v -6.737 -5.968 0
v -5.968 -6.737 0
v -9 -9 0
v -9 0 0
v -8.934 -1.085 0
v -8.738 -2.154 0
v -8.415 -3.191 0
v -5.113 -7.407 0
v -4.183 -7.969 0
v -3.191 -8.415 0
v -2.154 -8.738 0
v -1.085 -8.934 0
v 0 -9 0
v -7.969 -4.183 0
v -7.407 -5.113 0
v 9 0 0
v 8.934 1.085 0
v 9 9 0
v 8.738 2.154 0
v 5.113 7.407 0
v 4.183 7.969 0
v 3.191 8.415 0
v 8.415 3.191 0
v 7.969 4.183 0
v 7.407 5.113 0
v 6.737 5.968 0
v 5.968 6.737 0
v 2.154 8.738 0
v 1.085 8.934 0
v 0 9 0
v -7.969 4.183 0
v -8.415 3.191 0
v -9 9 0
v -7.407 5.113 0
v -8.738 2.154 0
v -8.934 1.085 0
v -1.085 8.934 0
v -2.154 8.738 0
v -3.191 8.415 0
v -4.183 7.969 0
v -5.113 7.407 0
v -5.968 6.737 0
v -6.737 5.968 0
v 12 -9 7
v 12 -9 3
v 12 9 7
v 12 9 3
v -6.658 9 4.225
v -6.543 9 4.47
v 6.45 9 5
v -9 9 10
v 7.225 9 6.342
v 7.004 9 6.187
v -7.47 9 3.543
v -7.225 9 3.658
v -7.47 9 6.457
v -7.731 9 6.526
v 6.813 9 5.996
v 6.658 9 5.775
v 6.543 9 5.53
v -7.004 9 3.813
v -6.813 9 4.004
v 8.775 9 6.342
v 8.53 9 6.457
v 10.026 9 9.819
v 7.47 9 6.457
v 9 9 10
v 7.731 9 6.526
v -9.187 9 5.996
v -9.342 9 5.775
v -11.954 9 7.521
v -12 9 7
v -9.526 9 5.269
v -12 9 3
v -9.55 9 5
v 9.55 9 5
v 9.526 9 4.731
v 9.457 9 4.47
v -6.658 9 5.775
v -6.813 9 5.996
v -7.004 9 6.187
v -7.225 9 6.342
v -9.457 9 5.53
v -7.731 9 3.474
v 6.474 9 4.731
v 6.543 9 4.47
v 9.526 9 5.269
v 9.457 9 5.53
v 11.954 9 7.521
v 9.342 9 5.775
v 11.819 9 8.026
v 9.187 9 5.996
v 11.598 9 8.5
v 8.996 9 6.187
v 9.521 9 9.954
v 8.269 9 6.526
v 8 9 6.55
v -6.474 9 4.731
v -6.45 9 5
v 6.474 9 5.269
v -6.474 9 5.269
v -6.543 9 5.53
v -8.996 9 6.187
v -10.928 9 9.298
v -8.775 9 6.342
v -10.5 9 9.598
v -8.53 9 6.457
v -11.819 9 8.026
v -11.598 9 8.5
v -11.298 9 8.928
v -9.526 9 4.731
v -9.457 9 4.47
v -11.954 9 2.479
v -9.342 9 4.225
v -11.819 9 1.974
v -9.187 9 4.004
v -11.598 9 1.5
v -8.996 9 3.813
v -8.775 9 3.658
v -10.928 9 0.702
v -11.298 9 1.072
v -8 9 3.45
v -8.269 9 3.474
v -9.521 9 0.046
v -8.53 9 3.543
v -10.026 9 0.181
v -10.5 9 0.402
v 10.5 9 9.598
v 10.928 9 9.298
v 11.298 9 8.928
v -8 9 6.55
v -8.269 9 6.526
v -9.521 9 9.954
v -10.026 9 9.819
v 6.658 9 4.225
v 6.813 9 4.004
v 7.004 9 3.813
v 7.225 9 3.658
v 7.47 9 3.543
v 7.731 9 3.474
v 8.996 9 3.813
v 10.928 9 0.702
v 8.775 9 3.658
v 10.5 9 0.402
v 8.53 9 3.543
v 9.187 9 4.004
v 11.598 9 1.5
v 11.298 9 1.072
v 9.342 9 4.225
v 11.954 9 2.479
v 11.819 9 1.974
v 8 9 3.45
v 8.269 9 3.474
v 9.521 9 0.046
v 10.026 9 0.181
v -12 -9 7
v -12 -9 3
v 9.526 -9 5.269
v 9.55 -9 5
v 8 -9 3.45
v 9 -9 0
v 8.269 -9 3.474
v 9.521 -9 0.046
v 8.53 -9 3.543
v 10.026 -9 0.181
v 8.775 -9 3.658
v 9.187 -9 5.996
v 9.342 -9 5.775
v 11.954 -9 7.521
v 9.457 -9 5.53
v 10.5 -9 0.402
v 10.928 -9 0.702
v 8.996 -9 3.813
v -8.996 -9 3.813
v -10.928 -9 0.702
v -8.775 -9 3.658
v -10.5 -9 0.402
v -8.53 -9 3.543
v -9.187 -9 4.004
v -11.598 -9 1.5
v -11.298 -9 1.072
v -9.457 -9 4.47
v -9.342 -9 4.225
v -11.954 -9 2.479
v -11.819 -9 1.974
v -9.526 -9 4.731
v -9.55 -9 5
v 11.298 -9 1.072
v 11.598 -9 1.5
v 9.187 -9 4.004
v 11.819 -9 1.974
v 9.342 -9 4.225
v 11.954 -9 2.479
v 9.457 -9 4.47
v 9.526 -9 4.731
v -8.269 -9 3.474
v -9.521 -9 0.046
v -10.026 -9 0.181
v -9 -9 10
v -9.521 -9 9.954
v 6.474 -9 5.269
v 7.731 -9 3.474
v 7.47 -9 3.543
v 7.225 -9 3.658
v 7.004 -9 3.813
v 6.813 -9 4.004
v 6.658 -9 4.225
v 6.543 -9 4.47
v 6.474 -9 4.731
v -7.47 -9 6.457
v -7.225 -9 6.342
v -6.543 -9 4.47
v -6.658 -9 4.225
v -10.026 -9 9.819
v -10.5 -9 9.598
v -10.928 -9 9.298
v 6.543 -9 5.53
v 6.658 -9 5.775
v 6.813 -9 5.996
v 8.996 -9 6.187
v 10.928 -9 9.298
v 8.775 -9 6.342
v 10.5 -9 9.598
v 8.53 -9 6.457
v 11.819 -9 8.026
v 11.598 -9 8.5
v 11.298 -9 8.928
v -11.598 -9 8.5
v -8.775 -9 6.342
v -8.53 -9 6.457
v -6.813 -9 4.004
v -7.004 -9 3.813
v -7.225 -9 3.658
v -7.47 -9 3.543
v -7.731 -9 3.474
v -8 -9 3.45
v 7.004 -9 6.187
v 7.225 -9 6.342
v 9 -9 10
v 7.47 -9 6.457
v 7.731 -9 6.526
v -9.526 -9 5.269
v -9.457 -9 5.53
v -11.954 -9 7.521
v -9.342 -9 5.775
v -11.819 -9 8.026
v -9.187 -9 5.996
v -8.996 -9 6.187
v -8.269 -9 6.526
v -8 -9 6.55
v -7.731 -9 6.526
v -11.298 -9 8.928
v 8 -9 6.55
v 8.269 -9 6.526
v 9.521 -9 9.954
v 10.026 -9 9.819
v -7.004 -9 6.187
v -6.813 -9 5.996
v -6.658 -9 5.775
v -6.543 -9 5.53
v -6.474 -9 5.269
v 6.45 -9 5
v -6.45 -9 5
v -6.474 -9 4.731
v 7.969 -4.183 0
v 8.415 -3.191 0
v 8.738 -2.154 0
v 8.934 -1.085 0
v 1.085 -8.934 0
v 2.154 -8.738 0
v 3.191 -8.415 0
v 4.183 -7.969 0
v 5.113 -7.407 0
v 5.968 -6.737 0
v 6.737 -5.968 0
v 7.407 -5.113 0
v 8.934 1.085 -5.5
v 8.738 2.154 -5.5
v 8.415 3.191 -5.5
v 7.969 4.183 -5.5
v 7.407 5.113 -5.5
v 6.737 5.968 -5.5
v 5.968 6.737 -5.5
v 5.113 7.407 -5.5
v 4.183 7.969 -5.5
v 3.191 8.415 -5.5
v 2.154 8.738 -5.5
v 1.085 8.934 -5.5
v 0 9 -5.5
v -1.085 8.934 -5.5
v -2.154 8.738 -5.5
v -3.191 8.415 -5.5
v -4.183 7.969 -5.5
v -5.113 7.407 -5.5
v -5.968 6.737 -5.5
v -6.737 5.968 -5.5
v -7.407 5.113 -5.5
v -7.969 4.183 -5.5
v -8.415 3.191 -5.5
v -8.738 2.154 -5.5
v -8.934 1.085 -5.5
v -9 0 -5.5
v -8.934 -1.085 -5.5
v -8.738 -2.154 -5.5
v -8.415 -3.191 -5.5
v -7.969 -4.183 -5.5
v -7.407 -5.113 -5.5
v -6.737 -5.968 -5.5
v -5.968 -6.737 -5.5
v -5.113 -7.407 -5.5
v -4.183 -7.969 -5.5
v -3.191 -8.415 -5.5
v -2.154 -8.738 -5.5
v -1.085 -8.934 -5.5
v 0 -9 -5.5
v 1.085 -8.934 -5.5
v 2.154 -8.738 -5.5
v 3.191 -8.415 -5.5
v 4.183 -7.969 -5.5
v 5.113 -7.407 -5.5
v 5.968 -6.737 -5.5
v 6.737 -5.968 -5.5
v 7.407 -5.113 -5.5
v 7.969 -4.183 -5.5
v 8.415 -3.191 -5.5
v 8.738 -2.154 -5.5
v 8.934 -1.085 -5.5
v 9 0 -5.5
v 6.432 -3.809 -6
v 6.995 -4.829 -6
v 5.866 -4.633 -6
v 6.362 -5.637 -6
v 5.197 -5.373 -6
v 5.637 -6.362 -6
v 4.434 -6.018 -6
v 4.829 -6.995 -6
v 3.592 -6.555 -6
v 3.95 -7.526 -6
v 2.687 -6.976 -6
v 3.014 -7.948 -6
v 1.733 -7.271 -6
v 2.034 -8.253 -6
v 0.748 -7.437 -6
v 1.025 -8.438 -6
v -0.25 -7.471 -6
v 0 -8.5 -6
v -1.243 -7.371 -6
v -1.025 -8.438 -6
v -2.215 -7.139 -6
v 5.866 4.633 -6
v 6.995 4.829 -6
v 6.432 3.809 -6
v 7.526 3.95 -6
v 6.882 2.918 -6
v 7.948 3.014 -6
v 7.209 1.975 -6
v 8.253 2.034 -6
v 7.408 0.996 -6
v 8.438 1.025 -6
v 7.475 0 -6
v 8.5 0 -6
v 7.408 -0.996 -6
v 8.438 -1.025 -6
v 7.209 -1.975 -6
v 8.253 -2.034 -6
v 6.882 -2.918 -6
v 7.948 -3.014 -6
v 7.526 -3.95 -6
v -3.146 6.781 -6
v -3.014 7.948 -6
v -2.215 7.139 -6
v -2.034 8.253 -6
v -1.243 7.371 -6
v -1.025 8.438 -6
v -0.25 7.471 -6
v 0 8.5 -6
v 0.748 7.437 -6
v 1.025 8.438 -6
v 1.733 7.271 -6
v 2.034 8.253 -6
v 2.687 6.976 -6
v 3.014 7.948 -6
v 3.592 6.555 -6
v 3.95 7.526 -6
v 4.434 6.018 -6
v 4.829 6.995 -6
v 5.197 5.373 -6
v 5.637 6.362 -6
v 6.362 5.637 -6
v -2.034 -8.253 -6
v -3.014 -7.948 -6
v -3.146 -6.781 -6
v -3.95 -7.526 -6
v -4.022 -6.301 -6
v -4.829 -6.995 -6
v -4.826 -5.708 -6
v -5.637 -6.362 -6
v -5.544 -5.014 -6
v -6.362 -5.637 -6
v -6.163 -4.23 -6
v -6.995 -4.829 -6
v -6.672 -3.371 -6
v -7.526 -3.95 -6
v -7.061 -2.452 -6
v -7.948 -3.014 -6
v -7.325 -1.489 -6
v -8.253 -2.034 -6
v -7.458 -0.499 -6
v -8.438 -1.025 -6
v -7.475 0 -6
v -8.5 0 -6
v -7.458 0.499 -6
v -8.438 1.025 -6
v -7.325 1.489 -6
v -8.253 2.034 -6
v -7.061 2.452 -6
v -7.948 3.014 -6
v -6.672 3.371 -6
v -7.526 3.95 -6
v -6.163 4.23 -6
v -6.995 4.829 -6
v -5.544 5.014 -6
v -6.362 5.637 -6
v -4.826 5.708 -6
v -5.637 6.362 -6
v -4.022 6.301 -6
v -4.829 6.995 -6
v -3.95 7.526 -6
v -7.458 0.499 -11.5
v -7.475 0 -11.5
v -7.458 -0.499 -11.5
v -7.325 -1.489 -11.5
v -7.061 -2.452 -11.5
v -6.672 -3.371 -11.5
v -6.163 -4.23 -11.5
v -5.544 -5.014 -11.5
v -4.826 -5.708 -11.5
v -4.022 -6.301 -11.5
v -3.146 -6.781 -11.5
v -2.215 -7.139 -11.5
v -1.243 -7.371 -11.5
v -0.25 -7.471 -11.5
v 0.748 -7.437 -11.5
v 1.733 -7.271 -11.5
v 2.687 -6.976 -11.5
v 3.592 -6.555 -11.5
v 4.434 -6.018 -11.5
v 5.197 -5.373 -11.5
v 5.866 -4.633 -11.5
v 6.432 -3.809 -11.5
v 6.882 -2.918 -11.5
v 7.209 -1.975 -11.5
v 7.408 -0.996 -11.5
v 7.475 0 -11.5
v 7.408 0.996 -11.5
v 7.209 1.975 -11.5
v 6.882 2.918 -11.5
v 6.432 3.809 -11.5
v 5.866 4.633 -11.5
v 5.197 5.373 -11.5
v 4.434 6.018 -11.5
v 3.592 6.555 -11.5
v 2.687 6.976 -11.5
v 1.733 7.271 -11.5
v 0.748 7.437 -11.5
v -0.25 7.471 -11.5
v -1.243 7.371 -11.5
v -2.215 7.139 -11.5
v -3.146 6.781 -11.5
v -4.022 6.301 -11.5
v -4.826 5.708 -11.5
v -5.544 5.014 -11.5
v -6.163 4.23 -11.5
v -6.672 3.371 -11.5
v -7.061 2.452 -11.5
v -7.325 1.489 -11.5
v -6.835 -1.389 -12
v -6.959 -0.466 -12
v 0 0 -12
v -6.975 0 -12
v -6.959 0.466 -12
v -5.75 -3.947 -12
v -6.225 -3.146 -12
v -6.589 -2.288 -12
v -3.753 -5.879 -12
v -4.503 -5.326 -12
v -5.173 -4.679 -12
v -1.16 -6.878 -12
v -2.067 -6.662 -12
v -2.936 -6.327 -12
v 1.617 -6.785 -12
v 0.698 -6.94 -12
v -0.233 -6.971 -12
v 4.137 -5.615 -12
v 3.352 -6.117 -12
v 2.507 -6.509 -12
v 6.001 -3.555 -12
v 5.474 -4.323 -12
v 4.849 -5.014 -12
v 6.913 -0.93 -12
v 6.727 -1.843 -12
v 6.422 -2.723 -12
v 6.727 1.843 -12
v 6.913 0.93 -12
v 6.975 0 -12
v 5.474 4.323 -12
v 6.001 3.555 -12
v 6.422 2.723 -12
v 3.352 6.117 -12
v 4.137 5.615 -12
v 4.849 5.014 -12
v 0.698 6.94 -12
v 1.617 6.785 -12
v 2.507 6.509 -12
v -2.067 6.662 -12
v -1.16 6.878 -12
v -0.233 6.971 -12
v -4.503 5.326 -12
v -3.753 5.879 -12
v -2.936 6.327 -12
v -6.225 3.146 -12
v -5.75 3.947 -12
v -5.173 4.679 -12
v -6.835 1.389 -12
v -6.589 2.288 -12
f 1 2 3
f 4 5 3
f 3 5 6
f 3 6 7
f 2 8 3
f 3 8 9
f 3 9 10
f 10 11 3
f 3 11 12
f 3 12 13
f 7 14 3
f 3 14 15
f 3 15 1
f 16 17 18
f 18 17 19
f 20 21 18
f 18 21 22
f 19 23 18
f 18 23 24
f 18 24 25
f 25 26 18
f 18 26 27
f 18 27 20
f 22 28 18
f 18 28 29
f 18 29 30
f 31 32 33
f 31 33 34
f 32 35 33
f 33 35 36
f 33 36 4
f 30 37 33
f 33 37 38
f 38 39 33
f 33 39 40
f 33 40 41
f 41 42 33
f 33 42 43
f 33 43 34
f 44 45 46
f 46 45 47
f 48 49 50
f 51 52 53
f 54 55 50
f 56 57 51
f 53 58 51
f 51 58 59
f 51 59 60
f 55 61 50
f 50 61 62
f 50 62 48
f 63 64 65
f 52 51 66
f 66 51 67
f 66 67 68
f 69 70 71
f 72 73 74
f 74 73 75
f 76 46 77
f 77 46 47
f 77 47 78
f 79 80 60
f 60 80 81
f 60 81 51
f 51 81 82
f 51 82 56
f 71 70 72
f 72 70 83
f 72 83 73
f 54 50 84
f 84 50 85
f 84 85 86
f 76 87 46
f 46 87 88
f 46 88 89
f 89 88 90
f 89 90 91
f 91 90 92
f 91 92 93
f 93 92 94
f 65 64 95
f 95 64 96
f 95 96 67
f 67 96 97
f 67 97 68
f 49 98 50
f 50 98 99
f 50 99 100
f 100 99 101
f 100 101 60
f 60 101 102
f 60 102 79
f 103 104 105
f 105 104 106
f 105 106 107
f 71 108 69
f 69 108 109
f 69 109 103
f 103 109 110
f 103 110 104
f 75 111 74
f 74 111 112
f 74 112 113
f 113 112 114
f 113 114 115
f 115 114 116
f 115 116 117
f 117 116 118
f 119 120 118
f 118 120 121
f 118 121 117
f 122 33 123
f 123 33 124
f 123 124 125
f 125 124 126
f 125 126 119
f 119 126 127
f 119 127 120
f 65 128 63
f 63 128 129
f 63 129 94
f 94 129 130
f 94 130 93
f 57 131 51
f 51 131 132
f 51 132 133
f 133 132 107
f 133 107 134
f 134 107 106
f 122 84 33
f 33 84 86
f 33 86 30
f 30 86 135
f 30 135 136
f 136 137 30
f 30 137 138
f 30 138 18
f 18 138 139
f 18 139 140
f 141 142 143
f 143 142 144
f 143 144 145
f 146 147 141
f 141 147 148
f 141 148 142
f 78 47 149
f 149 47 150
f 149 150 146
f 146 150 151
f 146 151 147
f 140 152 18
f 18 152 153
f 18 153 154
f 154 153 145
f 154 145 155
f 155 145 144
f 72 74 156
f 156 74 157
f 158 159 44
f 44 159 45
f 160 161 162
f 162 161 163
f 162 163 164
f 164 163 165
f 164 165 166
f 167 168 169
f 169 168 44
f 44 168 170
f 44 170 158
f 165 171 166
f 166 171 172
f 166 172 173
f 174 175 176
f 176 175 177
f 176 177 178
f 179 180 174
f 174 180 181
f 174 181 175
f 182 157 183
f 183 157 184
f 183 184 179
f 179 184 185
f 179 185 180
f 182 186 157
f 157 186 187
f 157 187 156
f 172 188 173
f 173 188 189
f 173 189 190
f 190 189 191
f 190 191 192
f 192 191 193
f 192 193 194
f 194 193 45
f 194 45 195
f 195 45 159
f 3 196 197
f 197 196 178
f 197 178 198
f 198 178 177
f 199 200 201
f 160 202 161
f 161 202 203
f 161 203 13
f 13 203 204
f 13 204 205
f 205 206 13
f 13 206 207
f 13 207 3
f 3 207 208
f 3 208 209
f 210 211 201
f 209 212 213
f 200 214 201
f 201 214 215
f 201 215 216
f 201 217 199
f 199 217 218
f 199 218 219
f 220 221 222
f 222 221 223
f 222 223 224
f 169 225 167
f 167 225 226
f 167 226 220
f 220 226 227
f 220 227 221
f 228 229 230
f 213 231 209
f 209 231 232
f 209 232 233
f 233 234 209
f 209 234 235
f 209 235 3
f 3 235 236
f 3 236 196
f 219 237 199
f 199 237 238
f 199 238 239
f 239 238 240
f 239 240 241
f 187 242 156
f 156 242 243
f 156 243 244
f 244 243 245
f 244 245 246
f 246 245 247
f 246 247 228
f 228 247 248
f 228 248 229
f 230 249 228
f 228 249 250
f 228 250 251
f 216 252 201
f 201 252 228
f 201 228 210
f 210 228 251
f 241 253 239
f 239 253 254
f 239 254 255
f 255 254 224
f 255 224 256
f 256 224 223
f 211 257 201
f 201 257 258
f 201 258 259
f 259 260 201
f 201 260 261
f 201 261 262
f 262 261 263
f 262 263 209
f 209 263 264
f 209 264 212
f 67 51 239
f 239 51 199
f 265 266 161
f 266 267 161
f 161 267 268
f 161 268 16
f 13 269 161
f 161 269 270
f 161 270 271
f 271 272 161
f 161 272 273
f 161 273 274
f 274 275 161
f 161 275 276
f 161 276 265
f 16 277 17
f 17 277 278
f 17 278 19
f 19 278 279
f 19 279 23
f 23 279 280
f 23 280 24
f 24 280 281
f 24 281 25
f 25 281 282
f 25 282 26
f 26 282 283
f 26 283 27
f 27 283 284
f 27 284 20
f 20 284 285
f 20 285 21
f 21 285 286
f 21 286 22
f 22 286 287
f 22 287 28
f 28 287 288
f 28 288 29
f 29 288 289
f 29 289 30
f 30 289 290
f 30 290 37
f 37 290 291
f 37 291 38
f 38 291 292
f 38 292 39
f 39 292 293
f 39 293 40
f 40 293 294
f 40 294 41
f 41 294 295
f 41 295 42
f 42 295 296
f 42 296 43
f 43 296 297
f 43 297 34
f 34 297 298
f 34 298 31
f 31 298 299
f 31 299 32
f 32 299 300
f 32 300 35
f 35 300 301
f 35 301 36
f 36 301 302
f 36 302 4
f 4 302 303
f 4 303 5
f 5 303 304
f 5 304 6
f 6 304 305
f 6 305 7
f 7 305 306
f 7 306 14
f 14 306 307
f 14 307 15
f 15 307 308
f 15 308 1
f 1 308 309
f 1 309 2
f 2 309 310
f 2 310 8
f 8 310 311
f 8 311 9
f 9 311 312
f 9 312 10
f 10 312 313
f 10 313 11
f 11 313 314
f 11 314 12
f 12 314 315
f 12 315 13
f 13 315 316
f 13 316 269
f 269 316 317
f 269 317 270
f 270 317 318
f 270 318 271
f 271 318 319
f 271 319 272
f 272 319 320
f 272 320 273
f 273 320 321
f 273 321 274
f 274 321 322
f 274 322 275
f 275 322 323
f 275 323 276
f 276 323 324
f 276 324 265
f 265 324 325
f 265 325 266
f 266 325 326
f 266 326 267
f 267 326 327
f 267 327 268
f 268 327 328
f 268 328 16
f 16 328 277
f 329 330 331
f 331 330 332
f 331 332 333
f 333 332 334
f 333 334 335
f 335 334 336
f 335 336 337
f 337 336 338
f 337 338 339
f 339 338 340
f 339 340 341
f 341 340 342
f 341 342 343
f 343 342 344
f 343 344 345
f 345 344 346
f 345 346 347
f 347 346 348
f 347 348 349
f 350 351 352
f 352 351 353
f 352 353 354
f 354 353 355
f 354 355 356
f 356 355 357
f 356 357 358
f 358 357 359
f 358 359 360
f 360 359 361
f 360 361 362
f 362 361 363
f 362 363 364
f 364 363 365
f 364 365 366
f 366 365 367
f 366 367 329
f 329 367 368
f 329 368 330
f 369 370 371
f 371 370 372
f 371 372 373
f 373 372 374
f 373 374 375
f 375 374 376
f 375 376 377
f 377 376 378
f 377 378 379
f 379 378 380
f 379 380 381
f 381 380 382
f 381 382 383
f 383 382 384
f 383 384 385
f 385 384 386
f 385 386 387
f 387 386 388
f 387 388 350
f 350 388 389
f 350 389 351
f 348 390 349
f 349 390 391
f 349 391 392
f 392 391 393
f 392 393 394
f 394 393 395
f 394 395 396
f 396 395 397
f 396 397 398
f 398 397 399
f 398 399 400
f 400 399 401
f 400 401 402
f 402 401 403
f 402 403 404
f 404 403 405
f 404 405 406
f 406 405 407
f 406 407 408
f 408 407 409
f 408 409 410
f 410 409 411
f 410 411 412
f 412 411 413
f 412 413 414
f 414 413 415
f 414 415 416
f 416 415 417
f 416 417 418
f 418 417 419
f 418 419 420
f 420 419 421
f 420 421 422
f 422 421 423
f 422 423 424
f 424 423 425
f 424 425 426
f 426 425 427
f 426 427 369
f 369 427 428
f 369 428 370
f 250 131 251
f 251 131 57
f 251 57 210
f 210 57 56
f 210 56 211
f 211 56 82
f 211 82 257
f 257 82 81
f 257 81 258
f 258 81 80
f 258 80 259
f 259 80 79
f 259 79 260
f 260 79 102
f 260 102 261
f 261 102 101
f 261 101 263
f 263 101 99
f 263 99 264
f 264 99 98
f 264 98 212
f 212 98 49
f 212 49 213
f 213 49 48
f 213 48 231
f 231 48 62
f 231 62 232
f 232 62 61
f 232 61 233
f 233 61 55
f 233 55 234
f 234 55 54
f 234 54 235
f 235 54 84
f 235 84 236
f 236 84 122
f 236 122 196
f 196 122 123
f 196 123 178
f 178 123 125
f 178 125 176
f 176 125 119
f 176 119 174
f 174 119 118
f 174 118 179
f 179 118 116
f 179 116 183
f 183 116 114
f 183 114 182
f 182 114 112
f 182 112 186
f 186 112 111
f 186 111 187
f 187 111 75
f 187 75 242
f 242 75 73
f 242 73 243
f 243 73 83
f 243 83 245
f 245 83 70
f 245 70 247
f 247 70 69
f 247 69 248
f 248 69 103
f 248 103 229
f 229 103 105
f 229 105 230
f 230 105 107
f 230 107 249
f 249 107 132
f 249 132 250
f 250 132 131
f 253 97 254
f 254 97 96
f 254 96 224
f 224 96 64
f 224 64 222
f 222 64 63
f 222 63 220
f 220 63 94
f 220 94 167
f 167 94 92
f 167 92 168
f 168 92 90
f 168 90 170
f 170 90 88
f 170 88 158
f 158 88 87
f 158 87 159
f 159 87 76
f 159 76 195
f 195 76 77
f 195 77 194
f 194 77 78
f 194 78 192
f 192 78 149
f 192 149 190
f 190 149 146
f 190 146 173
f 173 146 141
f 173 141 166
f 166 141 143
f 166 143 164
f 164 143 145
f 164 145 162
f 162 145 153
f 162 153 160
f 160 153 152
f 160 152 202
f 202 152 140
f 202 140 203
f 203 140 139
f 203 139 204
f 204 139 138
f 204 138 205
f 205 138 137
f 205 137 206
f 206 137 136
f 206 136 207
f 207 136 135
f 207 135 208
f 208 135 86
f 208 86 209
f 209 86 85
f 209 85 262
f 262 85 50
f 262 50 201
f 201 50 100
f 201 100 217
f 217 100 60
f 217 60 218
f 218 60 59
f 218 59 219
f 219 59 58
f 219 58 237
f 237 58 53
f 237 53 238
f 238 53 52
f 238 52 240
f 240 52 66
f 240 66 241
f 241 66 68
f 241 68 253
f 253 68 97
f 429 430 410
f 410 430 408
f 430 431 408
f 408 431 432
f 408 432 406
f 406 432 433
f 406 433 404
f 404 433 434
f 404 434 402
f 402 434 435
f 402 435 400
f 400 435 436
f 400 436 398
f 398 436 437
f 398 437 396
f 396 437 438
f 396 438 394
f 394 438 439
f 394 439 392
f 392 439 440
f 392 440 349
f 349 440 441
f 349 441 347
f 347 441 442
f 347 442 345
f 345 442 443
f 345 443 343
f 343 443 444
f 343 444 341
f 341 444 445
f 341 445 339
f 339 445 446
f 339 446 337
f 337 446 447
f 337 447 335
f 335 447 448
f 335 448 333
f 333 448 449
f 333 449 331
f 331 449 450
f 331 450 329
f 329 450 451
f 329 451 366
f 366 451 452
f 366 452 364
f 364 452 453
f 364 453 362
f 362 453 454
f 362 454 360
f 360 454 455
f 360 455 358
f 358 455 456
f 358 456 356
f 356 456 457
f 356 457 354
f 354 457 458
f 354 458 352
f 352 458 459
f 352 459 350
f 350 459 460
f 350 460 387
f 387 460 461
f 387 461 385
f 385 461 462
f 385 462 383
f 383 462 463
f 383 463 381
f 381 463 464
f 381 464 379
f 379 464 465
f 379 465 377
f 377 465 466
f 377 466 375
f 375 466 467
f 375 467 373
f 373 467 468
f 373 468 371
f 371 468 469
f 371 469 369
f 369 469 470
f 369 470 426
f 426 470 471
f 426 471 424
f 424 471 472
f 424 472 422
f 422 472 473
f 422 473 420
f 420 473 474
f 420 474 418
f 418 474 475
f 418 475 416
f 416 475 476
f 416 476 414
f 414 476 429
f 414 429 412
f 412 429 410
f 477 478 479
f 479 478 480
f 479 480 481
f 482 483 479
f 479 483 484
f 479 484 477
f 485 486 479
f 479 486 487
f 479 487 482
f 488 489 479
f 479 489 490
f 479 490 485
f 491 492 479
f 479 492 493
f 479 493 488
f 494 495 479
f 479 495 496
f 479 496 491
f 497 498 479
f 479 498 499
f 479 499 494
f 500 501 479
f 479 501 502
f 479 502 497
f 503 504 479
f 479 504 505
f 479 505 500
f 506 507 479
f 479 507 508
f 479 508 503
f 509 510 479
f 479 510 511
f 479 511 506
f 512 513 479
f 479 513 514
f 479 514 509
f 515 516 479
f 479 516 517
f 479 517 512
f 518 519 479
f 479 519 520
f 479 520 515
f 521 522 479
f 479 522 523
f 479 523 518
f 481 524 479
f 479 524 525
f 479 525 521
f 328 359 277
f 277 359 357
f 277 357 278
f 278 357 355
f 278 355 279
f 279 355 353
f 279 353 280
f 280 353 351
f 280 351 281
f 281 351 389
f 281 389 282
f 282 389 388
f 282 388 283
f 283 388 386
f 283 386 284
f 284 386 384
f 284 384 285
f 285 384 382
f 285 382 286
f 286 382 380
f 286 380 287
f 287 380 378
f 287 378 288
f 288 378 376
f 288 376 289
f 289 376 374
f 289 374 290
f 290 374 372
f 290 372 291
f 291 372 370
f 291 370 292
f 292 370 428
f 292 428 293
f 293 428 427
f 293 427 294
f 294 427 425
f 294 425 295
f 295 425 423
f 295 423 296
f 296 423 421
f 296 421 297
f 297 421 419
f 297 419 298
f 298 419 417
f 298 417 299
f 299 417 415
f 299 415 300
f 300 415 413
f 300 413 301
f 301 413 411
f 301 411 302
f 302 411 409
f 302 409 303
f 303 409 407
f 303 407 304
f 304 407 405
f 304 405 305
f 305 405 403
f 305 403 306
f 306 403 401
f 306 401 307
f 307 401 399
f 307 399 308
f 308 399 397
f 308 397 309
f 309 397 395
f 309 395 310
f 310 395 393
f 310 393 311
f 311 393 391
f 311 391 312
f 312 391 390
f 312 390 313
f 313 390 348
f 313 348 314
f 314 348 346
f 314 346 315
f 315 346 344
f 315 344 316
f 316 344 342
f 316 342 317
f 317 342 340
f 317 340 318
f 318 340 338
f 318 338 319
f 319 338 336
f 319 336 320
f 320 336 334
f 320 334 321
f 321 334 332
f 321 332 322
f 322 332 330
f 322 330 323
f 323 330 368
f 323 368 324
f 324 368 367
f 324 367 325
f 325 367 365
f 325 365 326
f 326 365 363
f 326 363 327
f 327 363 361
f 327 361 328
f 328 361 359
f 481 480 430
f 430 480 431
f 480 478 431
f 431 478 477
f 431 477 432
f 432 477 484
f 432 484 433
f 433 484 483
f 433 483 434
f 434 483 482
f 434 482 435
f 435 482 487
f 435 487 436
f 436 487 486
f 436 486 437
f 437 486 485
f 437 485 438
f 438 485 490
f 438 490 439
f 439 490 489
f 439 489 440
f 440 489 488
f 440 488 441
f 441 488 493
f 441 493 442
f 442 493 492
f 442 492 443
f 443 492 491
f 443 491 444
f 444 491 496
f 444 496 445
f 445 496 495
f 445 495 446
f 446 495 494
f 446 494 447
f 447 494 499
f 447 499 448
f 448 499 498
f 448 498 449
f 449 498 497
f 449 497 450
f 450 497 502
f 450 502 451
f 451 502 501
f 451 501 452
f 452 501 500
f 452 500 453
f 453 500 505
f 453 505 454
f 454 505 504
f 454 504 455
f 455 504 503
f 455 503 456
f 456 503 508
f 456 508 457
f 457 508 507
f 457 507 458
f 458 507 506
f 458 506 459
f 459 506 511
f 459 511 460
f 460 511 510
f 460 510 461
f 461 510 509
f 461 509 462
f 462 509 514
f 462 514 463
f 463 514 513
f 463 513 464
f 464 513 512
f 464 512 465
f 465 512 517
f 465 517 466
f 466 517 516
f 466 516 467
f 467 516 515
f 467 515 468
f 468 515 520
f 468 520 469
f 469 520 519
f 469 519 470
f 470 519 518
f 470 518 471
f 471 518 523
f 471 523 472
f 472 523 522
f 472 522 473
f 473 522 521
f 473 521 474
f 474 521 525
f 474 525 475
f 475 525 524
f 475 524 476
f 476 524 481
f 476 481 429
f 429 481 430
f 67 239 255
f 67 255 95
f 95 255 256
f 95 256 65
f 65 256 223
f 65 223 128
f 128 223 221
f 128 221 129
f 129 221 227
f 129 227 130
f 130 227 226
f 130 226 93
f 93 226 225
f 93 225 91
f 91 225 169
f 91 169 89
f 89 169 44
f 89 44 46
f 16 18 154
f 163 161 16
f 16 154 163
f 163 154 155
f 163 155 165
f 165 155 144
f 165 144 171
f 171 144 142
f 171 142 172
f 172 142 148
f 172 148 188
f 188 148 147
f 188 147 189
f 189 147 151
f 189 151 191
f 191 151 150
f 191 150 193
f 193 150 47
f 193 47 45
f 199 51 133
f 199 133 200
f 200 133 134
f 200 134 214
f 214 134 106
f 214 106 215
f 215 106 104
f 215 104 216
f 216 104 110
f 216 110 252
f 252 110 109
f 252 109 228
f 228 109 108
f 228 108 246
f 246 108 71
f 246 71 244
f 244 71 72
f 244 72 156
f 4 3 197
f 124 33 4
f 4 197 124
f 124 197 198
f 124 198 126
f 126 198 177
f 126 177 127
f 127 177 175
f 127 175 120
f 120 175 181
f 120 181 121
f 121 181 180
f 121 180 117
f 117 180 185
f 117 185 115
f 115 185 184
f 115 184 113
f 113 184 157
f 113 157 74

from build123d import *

# Parameters (mm, degrees)
SKETCH_1_W          = 24
SKETCH_1_H          = 18
EXTRUDE_1_DEPTH     = 10
SKETCH_2_R          = 9
EXTRUDE_2_DEPTH     = 6
SKETCH_4_R          = 1.55
CUT_EXTRUDE_2_DEPTH = 37.013519789
SKETCH1_R           = 7.475
BOSS_EXTRUDE1_DEPTH = 6
CHAMFER1_SIZE       = 0.5
FILLET1_R           = 3


with BuildPart() as part:
    # 草图1 → 凸台-拉伸1 (new body)
    with BuildSketch(Plane.XY):
        Rectangle(SKETCH_1_W, SKETCH_1_H)
    extrude(amount=EXTRUDE_1_DEPTH)

    # 草图2 → 凸台-拉伸2 (add)
    with BuildSketch(Plane.XY):
        Circle(SKETCH_2_R)
    extrude(amount=-EXTRUDE_2_DEPTH)

    # 草图4 → 切除-拉伸2 (cut)
    with BuildSketch(Plane(origin=(0, 9, 0), x_dir=(1, 0, 0), z_dir=(0, 1, 0))):
        with Locations(Location((-8, -5, 0), (0, 0, 270))):
            Circle(SKETCH_4_R)
        with Locations(Location((8, -5, 0), (0, 0, 270))):
            Circle(SKETCH_4_R)
    extrude(amount=-CUT_EXTRUDE_2_DEPTH, mode=Mode.SUBTRACT)

    # Sketch1 → Boss-Extrude1 (add)
    with BuildSketch(Plane(origin=(0, 0, -6), x_dir=(-1, 0, 0), z_dir=(0, 0, -1))):
        Circle(SKETCH1_R)
    extrude(amount=BOSS_EXTRUDE1_DEPTH)

    # Chamfer1
    chamfer1_edges = [part.edges().sort_by_distance(p)[0] for p in [
        (-9, 0, -6),
        (7.475, 0, -12),
    ]]
    chamfer(chamfer1_edges, length=CHAMFER1_SIZE)

    # Fillet1
    fillet1_edges = [part.edges().sort_by_distance(p)[0] for p in [
        (-12, 0, 10),
        (12, 0, 10),
        (-12, 0, 0),
        (12, 0, 0),
    ]]
    fillet(fillet1_edges, radius=FILLET1_R - 0.0001)  # a hair under: the kernel refuses the full size


solid = part.part
